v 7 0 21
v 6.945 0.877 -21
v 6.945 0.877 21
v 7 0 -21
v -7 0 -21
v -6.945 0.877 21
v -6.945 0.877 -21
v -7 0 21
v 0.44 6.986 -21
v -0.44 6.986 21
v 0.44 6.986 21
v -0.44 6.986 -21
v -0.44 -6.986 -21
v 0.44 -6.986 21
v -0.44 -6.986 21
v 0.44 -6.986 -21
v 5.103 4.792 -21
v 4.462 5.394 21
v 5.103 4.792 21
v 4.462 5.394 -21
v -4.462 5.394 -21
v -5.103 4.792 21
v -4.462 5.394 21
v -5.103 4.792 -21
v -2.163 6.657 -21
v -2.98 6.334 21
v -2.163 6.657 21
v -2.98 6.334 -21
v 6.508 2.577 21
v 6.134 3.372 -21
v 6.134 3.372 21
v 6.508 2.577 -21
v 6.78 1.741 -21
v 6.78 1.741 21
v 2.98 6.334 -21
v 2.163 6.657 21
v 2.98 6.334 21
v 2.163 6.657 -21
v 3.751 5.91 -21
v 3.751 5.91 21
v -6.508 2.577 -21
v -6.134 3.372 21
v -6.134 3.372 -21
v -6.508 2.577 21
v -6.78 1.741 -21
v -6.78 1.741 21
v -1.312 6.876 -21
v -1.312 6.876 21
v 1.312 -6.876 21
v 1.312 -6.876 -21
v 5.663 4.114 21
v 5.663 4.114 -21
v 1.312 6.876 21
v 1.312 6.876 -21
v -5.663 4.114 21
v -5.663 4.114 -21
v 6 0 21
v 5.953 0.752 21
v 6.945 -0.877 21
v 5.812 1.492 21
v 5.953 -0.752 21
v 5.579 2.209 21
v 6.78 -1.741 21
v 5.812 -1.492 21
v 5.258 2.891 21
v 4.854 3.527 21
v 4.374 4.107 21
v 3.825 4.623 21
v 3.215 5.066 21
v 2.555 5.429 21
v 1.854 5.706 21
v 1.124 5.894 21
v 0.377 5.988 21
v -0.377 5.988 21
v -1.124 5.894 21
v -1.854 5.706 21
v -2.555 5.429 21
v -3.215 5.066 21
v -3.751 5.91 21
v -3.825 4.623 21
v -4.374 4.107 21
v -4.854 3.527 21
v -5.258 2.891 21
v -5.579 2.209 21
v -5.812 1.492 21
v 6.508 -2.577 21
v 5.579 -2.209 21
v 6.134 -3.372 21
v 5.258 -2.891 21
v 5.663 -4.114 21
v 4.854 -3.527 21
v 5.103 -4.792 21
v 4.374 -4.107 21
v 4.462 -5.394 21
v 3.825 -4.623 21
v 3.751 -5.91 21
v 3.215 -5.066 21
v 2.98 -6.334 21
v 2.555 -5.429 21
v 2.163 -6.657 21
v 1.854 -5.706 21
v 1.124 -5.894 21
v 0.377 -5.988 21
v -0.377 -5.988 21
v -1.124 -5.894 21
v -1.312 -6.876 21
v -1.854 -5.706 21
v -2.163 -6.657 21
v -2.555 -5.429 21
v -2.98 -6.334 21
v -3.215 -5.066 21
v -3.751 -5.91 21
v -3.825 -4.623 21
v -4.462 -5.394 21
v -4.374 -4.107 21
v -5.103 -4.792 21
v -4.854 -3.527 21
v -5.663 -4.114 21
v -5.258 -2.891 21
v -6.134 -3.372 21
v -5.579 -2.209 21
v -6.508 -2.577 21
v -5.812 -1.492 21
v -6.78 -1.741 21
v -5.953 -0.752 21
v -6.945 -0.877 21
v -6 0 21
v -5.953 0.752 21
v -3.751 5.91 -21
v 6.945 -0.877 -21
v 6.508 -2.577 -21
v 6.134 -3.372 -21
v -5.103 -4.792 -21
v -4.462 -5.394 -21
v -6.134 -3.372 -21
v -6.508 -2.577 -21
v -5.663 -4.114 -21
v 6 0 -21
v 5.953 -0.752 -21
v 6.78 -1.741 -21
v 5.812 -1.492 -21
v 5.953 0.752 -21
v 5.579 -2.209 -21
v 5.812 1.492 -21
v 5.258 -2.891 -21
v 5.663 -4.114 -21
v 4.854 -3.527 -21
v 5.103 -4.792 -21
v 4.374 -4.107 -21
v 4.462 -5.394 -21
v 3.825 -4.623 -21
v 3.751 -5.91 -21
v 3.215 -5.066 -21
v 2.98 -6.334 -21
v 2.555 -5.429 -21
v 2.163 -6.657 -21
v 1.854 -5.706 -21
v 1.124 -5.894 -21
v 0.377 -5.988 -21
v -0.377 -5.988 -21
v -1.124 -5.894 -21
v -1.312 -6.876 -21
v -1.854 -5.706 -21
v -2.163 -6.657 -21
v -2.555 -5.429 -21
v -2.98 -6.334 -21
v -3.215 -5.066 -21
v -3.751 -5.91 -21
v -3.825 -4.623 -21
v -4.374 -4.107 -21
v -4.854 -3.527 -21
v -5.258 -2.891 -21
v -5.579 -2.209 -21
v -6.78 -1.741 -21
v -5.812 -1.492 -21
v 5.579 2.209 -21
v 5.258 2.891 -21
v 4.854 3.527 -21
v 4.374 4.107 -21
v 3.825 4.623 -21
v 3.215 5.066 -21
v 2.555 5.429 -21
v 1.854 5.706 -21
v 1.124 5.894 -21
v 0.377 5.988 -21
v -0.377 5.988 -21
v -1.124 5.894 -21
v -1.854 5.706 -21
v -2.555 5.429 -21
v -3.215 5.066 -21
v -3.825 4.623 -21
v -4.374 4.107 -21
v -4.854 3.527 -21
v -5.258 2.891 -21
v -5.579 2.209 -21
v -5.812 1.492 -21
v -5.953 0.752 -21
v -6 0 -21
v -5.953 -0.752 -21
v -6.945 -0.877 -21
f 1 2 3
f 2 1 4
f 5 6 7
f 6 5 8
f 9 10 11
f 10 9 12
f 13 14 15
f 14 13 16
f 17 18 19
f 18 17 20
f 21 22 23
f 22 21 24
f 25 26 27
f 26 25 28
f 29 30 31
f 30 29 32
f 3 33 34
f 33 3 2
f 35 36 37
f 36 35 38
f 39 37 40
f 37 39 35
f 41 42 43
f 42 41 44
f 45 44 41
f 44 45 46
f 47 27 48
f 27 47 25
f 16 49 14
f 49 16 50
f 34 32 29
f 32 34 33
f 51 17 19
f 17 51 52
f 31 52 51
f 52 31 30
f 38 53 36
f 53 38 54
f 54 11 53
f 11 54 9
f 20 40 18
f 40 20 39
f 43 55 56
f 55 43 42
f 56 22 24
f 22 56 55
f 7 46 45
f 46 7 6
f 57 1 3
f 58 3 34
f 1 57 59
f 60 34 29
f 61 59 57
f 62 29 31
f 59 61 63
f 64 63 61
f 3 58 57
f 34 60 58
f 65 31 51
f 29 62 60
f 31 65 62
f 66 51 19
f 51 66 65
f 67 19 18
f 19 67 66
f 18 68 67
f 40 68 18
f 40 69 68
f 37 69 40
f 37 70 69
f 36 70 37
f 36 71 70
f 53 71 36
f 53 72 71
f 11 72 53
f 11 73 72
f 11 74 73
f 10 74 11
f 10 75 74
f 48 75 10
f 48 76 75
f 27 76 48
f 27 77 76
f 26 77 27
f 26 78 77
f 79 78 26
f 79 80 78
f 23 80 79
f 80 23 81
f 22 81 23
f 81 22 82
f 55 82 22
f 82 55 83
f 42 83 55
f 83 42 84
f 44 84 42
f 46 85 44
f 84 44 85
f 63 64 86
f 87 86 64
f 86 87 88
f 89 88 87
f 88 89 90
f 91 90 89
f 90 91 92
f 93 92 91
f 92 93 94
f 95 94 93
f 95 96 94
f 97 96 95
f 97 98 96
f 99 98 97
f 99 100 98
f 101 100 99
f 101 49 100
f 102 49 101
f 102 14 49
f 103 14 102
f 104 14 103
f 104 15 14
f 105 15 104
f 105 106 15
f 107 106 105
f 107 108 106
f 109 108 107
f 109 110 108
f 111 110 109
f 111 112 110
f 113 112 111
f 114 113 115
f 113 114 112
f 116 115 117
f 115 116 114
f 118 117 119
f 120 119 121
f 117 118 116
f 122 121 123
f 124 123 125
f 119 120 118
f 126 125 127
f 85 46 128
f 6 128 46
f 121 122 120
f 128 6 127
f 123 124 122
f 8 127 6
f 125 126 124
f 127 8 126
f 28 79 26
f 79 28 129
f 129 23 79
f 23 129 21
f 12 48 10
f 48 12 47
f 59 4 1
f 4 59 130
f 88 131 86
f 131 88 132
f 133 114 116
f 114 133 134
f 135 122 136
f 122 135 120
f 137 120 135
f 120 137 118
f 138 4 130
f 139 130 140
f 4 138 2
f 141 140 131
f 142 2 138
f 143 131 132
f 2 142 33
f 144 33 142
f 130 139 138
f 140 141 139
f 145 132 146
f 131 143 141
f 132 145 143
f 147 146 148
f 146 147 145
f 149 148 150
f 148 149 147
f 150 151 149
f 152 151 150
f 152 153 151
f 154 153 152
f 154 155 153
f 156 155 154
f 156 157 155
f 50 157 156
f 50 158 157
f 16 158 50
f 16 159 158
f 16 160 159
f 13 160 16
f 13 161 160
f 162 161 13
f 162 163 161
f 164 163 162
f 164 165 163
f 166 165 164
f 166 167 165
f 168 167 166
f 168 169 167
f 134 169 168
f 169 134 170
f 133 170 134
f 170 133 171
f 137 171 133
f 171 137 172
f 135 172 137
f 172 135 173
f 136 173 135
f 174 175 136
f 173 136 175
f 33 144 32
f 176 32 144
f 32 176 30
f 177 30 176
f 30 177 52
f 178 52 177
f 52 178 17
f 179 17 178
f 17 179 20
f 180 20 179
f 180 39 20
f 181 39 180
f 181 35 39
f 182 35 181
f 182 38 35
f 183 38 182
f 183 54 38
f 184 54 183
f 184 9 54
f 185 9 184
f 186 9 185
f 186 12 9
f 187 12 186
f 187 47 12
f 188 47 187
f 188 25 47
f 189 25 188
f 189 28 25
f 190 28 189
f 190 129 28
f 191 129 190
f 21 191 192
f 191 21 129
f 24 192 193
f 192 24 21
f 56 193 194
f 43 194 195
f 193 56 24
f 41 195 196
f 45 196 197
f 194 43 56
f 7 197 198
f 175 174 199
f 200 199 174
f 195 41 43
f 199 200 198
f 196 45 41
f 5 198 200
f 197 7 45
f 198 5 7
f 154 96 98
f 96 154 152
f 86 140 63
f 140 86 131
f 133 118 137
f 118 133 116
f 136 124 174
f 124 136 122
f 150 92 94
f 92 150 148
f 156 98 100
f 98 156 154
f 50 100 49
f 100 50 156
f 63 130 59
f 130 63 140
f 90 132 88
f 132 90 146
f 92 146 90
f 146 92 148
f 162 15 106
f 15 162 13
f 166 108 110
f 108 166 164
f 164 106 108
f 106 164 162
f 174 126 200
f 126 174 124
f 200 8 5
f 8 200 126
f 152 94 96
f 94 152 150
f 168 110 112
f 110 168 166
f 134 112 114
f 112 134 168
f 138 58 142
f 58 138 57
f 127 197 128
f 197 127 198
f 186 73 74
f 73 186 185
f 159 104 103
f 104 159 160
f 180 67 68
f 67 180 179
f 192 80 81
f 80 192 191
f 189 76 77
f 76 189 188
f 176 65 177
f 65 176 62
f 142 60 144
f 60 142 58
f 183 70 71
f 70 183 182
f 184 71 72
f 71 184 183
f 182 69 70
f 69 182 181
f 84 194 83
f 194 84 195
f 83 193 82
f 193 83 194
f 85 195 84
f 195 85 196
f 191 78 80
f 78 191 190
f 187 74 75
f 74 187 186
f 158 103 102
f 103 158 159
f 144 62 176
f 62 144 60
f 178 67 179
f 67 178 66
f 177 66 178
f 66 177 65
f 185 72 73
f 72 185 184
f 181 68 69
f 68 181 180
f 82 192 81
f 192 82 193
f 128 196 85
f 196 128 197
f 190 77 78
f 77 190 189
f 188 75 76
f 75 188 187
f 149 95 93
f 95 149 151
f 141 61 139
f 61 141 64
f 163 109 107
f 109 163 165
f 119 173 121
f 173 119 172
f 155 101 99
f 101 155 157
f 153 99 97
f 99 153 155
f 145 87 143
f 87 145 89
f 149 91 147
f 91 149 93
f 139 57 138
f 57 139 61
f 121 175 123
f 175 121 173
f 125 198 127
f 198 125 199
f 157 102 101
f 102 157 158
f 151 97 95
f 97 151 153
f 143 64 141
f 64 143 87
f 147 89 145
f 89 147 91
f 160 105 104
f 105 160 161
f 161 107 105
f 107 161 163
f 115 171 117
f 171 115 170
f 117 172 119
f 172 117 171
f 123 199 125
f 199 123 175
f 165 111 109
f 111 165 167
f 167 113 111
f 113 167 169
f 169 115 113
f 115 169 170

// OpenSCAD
$fn = 50;


difference() {
	union() {
		translate(v = [0, 0, -21.0000000000]) {
			cylinder(h = 42, r = 7.0000000000);
		}
	}
	union() {
		translate(v = [0, 0, -100.0000000000]) {
			cylinder(h = 200, r = 6);
		}
	}
}
